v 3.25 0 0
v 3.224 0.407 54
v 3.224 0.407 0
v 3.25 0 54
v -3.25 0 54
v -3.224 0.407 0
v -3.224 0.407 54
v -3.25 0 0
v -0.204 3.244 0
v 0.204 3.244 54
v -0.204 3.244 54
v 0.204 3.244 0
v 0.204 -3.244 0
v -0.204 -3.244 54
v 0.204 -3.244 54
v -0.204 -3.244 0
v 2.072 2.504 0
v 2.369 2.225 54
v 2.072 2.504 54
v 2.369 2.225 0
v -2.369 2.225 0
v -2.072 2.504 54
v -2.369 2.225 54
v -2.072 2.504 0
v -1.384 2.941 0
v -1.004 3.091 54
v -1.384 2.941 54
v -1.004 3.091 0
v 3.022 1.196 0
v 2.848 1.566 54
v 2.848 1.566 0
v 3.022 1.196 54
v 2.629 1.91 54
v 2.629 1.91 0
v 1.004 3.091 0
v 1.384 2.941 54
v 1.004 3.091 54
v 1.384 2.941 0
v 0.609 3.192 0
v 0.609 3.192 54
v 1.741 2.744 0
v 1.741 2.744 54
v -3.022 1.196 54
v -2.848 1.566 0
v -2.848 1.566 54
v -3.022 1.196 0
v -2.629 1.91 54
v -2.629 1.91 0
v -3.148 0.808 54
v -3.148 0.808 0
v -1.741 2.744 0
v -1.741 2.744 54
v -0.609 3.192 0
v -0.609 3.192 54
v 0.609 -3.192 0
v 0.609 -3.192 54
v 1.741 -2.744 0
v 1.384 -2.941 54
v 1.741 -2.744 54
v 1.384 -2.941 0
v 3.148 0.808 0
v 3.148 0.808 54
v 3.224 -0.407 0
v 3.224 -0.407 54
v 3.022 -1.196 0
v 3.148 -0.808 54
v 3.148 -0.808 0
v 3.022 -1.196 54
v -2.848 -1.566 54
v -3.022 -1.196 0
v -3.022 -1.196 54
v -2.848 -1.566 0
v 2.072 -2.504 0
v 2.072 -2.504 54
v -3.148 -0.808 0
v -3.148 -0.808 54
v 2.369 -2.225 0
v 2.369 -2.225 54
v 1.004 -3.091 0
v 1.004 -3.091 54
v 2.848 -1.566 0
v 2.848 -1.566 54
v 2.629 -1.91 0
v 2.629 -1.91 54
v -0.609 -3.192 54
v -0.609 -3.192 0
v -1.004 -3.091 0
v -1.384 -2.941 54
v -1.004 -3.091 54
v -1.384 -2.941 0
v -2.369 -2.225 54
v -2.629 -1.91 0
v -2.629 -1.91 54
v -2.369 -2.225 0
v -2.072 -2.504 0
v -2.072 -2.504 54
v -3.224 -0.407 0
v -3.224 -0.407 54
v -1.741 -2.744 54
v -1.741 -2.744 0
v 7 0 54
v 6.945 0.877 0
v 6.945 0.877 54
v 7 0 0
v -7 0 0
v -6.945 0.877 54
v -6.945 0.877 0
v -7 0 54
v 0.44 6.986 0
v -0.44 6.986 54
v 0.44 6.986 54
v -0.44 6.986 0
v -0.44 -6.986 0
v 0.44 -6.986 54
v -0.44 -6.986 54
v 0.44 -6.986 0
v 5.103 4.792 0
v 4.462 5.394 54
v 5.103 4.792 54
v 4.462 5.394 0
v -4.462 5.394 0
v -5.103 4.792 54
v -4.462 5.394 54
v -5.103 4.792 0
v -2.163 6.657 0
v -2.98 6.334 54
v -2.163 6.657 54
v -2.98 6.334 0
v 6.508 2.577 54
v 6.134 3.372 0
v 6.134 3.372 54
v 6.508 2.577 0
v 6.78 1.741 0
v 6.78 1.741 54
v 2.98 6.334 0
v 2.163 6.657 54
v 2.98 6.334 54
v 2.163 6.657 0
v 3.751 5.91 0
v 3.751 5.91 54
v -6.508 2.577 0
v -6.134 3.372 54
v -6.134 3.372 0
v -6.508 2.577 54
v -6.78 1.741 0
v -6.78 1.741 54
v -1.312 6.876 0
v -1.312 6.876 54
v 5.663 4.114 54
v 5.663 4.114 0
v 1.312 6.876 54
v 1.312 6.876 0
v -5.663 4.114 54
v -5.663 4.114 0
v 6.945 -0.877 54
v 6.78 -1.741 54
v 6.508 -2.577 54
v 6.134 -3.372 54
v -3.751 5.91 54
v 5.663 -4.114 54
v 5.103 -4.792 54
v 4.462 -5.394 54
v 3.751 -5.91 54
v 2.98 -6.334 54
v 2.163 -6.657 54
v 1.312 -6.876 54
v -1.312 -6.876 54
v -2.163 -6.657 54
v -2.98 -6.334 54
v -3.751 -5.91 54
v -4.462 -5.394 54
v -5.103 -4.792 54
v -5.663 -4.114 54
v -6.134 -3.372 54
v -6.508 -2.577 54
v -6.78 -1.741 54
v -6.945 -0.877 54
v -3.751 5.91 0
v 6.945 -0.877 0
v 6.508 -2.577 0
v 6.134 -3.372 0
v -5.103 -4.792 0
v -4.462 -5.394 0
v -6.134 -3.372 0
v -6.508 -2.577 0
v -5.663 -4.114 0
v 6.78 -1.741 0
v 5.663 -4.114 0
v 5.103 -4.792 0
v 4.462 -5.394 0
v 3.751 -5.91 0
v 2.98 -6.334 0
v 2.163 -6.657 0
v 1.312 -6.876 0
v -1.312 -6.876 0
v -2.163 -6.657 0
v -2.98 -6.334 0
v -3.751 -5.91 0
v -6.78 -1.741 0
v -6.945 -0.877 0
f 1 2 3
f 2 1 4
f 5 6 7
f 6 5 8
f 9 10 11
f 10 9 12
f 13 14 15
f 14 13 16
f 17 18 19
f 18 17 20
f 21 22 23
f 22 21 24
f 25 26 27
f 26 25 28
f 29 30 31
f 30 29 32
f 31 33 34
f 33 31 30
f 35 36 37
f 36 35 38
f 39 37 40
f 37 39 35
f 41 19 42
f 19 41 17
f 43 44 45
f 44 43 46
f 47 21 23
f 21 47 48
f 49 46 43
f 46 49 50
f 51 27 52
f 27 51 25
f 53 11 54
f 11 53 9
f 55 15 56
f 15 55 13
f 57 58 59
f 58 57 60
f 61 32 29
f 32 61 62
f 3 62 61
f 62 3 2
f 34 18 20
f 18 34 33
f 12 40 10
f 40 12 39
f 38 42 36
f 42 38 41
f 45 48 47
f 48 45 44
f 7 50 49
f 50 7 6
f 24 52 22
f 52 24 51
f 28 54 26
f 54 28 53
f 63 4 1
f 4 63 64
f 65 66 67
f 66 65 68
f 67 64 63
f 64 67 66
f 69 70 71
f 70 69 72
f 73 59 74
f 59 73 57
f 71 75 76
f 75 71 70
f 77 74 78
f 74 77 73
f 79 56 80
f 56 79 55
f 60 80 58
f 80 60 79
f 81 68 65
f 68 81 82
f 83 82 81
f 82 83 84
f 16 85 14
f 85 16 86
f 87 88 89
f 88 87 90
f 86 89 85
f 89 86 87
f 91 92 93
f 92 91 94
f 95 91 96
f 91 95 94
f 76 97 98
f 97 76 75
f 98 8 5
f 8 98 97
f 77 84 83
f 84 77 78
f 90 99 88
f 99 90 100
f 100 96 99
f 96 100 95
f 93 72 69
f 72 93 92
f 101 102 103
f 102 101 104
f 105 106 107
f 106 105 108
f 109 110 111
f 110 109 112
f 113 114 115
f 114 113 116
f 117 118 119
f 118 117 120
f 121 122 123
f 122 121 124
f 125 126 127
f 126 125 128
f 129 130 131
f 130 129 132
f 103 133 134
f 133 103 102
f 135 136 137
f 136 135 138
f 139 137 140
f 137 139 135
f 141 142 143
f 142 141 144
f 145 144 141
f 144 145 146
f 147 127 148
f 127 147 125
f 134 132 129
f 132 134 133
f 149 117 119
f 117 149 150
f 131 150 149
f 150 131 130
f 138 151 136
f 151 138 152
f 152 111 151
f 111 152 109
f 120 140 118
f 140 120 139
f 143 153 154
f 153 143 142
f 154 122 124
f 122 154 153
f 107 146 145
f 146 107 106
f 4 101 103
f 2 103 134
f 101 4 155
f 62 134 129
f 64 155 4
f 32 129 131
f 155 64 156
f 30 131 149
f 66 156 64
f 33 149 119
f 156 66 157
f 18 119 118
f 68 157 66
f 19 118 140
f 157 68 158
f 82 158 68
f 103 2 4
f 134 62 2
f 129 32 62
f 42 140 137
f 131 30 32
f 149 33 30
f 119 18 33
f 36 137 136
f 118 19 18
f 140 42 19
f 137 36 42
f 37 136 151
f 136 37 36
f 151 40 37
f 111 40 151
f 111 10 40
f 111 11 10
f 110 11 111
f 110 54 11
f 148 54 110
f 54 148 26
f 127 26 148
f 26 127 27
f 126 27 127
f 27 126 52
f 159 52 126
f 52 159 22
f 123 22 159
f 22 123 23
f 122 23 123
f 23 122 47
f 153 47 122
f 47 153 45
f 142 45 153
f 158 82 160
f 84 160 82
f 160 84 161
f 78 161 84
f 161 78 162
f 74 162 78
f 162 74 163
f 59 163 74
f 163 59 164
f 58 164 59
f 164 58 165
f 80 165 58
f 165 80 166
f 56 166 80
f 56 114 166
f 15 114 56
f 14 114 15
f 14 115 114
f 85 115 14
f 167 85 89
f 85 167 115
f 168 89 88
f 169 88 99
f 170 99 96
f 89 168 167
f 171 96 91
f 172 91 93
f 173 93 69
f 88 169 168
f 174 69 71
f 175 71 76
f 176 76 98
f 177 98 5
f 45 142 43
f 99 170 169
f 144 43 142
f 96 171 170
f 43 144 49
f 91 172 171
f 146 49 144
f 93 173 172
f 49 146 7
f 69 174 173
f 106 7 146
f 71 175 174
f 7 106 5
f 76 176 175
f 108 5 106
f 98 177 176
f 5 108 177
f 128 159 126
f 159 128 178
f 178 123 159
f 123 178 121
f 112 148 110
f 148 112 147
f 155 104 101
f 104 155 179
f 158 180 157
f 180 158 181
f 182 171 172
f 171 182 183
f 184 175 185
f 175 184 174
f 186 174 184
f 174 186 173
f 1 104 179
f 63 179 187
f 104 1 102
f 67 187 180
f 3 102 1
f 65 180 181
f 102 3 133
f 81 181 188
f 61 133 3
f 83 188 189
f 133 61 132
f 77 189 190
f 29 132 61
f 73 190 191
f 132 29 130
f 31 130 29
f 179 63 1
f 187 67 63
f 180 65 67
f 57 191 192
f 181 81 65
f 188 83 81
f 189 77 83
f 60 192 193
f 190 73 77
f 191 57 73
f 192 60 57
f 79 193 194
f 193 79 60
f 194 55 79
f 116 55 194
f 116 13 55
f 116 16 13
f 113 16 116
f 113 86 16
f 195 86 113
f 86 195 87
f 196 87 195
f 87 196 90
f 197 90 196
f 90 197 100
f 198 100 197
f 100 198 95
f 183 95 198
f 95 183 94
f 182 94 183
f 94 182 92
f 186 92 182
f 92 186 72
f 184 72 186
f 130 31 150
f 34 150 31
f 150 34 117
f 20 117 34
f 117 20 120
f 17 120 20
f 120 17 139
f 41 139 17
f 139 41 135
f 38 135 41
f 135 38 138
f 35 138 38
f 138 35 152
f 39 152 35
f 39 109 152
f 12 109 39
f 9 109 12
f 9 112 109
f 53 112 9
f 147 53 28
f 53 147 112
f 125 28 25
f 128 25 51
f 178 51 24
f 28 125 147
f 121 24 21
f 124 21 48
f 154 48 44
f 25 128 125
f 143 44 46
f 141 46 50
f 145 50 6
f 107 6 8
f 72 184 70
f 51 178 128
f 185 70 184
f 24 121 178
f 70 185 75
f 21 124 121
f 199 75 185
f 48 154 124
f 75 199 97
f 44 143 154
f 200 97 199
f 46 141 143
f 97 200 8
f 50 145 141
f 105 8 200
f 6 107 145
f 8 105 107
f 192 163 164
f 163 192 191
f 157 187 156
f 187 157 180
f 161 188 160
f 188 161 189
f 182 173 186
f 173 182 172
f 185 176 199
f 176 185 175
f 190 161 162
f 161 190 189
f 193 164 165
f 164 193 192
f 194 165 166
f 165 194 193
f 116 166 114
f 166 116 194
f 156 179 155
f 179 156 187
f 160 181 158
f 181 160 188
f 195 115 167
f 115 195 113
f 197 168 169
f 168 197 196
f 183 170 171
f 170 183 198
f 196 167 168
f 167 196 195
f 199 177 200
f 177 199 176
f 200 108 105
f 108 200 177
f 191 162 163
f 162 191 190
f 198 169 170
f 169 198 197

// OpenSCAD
$fn = 50;


difference() {
	union() {
		cylinder(h = 54, r = 7.0000000000);
	}
	union() {
		translate(v = [0.0000000000, 0.0000000000, -100.0000000000]) {
			cylinder(h = 200, r = 3.2500000000);
		}
		cylinder(h = 54, r = 1.8000000000);
		cylinder(h = 54, r = 1.8000000000);
		cylinder(h = 54, r = 1.8000000000);
	}
}
